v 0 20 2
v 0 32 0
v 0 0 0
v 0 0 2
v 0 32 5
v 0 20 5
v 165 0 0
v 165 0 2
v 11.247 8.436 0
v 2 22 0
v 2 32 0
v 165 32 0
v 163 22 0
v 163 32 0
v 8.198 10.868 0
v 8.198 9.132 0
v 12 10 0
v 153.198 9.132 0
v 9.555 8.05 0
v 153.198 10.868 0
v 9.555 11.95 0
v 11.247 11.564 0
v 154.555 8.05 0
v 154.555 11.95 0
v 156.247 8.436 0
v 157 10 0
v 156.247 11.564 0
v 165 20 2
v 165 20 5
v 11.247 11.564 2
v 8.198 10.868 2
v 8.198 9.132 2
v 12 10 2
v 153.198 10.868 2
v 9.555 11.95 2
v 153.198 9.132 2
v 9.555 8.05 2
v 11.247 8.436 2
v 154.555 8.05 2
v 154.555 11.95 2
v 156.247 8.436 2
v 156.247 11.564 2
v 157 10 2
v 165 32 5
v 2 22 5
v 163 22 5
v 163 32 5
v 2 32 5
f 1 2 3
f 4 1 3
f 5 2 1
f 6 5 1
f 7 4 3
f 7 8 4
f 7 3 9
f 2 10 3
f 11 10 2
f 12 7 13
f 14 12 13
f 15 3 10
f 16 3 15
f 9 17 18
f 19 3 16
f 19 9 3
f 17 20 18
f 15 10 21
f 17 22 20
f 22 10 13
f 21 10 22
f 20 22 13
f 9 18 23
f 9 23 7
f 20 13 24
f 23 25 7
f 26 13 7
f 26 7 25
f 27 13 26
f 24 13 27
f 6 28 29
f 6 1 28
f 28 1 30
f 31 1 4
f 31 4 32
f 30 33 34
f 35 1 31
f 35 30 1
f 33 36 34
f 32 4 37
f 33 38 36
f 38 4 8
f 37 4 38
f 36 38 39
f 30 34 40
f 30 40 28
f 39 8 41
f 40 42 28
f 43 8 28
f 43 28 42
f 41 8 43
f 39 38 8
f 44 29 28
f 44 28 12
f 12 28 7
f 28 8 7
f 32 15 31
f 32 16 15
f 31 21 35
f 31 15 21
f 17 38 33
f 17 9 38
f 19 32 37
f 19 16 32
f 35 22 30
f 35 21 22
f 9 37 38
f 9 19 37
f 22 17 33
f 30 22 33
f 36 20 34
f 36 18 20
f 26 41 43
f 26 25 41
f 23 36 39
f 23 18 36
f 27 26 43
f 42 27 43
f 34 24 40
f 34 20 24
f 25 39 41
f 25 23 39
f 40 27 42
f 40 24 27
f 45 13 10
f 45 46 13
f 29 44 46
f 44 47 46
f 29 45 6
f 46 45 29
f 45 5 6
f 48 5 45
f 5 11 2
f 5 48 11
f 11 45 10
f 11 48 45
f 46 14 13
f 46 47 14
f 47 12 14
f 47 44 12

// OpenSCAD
length = 165;
height = 5;
thickness = 2;
fixture_height = 20;

difference() {
    cube([length, fixture_height, thickness]);
    translate([10, 10, 0]) cylinder(thickness, r=2);
    translate([155, 10, 0]) cylinder(thickness, r=2);
}

translate([0, fixture_height, 0]) cube([165, thickness, height]);
translate([0, fixture_height + thickness, 0]) cube([thickness, 10, height]);
translate([length - thickness, fixture_height + thickness, 0]) cube([thickness, 10, height]);
